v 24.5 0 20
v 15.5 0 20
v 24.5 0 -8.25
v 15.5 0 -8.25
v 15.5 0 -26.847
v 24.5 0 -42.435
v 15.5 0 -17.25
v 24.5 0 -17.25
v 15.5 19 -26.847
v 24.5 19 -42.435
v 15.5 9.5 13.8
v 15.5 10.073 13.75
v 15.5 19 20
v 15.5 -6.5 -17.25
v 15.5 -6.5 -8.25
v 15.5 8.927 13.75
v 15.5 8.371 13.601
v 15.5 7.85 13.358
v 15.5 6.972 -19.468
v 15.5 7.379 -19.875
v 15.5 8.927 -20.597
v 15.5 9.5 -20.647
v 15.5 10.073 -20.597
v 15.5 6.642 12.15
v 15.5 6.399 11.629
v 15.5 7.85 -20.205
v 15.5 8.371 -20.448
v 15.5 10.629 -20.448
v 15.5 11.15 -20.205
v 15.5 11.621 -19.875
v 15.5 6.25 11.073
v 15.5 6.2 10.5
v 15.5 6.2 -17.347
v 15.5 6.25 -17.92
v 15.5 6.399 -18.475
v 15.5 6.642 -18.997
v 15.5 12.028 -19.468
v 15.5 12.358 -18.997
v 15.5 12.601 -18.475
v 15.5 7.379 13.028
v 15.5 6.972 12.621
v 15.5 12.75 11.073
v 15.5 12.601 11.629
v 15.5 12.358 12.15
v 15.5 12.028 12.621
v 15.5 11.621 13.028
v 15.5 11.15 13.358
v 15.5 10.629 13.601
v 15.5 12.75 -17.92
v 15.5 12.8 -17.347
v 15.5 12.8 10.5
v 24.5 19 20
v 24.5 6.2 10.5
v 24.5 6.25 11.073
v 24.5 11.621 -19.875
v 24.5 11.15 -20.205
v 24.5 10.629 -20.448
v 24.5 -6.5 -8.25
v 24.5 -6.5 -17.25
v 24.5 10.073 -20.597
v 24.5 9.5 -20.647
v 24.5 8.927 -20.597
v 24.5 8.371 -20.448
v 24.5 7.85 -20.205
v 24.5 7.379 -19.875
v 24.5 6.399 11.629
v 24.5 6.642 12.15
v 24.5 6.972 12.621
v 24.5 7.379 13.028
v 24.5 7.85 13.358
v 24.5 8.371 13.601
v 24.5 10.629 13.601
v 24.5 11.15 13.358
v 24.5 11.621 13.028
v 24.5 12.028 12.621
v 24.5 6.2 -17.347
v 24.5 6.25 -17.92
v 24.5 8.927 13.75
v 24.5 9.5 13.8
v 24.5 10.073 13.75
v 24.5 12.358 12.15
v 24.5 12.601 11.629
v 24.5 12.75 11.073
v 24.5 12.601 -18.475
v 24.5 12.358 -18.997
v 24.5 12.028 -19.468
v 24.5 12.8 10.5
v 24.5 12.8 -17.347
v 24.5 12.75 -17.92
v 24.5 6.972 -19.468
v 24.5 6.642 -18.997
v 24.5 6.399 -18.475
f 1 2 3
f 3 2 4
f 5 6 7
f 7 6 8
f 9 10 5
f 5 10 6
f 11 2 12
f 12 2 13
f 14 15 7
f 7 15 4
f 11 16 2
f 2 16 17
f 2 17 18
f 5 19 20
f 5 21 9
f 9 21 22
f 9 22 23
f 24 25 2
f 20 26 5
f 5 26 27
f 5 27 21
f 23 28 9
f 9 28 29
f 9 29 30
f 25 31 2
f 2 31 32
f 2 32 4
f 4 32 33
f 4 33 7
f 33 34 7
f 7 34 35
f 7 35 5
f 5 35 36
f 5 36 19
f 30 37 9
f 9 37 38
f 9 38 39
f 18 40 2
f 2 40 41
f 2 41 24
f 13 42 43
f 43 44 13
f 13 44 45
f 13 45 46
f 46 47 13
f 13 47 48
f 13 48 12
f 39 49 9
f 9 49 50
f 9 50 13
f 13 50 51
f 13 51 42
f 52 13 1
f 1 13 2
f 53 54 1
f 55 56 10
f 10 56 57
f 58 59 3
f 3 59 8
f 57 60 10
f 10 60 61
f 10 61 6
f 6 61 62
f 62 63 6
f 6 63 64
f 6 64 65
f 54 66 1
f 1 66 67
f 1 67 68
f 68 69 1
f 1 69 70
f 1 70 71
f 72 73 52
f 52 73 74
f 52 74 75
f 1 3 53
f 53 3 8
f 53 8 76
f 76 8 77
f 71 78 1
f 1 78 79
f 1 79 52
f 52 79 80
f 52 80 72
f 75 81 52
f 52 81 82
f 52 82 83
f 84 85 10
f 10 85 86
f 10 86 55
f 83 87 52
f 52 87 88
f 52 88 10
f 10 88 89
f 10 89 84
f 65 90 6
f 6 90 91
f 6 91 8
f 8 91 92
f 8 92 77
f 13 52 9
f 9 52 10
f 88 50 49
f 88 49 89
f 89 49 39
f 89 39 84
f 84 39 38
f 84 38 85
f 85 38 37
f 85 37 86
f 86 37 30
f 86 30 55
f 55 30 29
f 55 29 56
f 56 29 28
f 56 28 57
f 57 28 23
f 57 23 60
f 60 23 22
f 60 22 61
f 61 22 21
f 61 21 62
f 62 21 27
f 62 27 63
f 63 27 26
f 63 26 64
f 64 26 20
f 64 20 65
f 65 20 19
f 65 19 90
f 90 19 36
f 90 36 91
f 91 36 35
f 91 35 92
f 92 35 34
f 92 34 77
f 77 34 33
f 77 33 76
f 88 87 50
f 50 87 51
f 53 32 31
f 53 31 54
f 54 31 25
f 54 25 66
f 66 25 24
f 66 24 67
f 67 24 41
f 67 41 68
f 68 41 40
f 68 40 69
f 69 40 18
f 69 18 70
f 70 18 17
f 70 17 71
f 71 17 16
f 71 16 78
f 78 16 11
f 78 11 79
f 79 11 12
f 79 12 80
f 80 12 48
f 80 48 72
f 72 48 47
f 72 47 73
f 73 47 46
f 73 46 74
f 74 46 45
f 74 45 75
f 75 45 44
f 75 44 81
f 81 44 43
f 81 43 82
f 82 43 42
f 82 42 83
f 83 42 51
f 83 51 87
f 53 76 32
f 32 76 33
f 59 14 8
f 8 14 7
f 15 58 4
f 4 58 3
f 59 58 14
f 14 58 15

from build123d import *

# Parameters (mm, degrees)
BOSS_EXTRUDE1_DEPTH = 19
CUT_EXTRUDE1_DEPTH  = 10
SKETCH4_W           = 9
SKETCH4_H           = 9
BOSS_EXTRUDE2_DEPTH = 6.5


with BuildPart() as part:
    # Sketch1 → Boss-Extrude1 (new body)
    with BuildSketch(Plane(origin=(0, 0, 0), x_dir=(1, 0, 0), z_dir=(0, 1, 0))):
        Polygon((15.5, 26.846787517), (15.5, -20), (24.5, -20), (24.5, 42.435244785), align=None)
    extrude(amount=BOSS_EXTRUDE1_DEPTH)

    # Sketch3 → Cut-Extrude1 (cut, through all)
    with BuildSketch(Plane.ZY.offset(-15.5)):
        with BuildLine():
            Line((-17.346787517, 12.8), (10.5, 12.8))
            ThreePointArc((10.5, 12.8), (13.8, 9.5), (10.5, 6.2))
            Line((10.5, 6.2), (-17.346787517, 6.2))
            ThreePointArc((-17.346787517, 6.2), (-20.646787517, 9.5), (-17.346787517, 12.8))
        make_face()
    extrude(amount=-CUT_EXTRUDE1_DEPTH, mode=Mode.SUBTRACT)

    # Sketch4 → Boss-Extrude2 (add)
    with BuildSketch(Plane.XZ):
        with Locations((20, -12.75)):
            Rectangle(SKETCH4_W, SKETCH4_H)
    extrude(amount=BOSS_EXTRUDE2_DEPTH)


solid = part.part
